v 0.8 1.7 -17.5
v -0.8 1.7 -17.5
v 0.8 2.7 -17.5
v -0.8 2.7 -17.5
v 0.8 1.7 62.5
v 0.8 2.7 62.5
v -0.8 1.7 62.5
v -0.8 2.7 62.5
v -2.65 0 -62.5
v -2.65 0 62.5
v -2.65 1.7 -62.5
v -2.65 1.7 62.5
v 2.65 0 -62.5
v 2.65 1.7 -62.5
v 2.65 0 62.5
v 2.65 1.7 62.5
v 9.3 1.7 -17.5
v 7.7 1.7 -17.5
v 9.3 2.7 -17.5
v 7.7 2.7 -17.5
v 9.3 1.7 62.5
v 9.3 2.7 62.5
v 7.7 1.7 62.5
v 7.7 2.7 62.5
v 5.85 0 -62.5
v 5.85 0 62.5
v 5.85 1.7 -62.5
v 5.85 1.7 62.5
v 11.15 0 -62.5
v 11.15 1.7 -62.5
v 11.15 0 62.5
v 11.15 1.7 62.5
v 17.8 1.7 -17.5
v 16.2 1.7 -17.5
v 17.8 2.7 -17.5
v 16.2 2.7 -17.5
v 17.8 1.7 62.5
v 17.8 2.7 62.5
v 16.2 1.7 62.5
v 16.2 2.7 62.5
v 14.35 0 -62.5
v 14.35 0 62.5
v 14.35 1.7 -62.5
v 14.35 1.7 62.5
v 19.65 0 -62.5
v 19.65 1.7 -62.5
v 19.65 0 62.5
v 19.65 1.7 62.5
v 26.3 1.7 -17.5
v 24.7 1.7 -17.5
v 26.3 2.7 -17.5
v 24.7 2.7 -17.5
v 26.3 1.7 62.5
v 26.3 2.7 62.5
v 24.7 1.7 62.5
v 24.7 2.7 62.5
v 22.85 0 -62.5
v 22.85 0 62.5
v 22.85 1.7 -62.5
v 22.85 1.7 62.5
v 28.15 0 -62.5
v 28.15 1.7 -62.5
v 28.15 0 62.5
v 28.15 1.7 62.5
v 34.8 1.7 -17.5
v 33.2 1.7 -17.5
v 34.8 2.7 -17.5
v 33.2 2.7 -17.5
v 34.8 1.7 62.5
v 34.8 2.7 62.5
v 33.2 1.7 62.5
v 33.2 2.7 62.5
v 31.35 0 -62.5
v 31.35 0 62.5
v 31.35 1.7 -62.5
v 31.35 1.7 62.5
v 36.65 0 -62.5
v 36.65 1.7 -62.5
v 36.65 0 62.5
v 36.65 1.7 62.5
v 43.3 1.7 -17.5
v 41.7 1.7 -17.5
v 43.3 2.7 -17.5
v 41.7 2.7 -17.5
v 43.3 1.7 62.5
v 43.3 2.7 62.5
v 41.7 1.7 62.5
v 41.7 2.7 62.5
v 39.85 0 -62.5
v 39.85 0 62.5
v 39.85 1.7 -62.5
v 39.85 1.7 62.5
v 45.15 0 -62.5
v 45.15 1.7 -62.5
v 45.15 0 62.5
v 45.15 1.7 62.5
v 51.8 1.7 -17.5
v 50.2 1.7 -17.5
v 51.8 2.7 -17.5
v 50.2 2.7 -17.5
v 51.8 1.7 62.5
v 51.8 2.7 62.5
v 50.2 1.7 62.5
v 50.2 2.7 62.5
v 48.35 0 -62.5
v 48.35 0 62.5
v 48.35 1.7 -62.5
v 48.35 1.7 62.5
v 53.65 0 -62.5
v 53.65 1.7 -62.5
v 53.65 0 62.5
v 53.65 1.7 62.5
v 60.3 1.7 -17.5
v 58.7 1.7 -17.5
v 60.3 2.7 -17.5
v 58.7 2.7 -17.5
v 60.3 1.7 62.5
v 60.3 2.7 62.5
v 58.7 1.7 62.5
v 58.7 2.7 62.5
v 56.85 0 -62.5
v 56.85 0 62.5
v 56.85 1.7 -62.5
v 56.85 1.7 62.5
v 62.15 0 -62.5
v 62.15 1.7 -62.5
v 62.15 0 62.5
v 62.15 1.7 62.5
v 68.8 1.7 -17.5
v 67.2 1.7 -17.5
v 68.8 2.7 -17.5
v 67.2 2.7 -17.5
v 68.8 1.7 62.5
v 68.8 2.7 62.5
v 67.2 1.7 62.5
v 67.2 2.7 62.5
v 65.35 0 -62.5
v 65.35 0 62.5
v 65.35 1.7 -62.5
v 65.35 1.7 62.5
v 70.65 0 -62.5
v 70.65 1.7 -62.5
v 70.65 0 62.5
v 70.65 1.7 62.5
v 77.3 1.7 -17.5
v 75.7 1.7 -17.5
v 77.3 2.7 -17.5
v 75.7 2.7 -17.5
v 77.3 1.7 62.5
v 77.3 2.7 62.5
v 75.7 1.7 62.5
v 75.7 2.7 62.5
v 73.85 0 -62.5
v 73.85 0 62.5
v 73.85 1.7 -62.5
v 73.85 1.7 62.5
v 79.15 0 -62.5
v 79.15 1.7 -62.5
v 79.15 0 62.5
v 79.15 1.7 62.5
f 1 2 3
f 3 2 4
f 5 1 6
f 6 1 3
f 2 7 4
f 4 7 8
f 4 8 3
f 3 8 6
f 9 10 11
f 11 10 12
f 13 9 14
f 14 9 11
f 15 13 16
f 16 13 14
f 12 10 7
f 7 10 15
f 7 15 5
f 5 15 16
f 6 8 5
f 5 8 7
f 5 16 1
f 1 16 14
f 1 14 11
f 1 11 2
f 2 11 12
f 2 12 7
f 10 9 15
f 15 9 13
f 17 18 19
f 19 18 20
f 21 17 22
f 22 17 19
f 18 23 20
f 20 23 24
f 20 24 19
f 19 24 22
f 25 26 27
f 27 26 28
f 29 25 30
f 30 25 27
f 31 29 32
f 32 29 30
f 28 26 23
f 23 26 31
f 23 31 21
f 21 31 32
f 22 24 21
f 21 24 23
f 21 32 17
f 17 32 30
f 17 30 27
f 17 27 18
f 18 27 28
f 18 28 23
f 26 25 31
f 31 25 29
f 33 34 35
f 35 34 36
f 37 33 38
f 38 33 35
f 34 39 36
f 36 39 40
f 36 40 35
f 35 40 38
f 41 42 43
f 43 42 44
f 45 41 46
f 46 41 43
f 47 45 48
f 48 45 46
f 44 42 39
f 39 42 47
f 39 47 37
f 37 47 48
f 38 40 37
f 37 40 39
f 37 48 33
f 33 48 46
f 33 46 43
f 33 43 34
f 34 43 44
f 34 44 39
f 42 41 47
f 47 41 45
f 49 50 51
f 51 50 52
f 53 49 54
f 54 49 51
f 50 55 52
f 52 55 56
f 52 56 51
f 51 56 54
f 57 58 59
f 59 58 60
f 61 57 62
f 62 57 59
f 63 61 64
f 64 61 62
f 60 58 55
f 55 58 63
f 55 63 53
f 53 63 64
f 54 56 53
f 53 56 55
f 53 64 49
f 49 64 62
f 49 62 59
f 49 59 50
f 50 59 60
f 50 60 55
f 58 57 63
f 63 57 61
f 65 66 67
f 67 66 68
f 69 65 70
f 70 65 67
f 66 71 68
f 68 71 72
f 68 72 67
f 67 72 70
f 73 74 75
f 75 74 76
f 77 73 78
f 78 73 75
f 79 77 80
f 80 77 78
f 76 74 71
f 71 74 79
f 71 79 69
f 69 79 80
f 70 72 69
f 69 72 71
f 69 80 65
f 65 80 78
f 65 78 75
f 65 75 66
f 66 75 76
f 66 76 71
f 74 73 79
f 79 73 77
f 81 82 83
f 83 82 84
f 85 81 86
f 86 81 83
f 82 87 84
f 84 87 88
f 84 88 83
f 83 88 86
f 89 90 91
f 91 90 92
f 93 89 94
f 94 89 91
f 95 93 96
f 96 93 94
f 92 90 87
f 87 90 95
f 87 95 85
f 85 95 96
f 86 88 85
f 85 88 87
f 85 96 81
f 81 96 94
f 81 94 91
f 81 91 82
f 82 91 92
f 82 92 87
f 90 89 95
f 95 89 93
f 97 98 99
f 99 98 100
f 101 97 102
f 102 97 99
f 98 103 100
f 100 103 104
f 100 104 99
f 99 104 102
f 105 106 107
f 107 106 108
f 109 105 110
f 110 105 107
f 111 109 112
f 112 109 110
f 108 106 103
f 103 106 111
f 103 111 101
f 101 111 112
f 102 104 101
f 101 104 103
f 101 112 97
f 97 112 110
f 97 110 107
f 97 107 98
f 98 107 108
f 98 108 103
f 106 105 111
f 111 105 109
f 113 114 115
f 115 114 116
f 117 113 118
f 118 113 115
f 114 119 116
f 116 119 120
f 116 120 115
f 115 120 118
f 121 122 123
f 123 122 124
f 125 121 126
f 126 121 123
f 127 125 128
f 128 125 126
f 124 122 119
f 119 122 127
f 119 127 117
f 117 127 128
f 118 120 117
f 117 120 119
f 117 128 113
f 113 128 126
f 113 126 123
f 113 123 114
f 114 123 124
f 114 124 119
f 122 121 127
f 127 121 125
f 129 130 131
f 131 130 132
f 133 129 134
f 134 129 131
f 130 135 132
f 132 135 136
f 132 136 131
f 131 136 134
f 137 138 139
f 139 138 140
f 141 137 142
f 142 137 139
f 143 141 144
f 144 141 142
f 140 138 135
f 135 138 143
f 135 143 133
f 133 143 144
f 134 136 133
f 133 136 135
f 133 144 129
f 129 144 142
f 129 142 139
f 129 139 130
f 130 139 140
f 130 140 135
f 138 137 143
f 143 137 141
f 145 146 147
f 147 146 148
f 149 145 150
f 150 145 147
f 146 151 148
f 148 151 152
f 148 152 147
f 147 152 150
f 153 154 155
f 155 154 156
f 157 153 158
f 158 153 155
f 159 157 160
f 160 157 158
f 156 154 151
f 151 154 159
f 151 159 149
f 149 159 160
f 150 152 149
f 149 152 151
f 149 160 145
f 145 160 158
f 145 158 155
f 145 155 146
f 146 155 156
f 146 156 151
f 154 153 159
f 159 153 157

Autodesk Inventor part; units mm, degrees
ref_plane "YZ Plane" through (0, 0, 0) normal (1, 0, 0) x (0, 1, 0)
ref_plane "XZ Plane" through (0, 0, 0) normal (0, 1, 0) x (-1, 0, 0)
ref_plane "XY Plane" through (0, 0, 0) normal (0, 0, 1) x (1, 0, 0)
sketch "Sketch1" plane through (0, 0, 0) normal (0, 1, 0) x (-1, 0, 0)
  line L0 (2.65, -62.5) -> (-2.65, -62.5)
  line L1 (-2.65, -62.5) -> (-2.65, 62.5)
  line L2 (-2.65, 62.5) -> (2.65, 62.5)
  line L3 (2.65, 62.5) -> (2.65, -62.5)
  line L4 (2.65, -62.5) -> (-2.65, 62.5) construction
  line L5 (-2.65, -62.5) -> (2.65, 62.5) construction
  point P0 (0, 0)
  dimension "d0" = 5.3
  dimension "d1" = 125
extrude "Extrusion1" add sketch "Sketch1" along normal blind 1.7
sketch "Sketch2" plane through (0, 1.7, 0) normal (0, 1, 0) x (1, 0, 0)
  line L0 (-2.65, -62.5) -> (2.65, -62.5) projected
  line L1 (0.8, -62.5) -> (-0.8, -62.5)
  line L2 (-0.8, -62.5) -> (-0.8, 17.5)
  line L3 (-0.8, 17.5) -> (0.8, 17.5)
  line L4 (0.8, 17.5) -> (0.8, -62.5)
  line L5 (-2.65, 62.5) -> (-2.65, -62.5) projected
  point P0 (0, 0)
  dimension "d4" = 1.6
  dimension "d5" = 80
  dimension "d6" = 5.3
  dimension "d7" = 1.6
  dimension "d8" = 1.85
extrude "Extrusion2" add sketch "Sketch2" along normal blind 1
pattern_linear "Rectangular Pattern1" count 10 spacing 8.5 along (1, 0, 0) of "Extrusion1", "Extrusion2"
equation "\"d8\" = 0.5 * d6 - 0.5 * d7"
equation "\"base_add\" = 1.2"
properties part number "structure4"
